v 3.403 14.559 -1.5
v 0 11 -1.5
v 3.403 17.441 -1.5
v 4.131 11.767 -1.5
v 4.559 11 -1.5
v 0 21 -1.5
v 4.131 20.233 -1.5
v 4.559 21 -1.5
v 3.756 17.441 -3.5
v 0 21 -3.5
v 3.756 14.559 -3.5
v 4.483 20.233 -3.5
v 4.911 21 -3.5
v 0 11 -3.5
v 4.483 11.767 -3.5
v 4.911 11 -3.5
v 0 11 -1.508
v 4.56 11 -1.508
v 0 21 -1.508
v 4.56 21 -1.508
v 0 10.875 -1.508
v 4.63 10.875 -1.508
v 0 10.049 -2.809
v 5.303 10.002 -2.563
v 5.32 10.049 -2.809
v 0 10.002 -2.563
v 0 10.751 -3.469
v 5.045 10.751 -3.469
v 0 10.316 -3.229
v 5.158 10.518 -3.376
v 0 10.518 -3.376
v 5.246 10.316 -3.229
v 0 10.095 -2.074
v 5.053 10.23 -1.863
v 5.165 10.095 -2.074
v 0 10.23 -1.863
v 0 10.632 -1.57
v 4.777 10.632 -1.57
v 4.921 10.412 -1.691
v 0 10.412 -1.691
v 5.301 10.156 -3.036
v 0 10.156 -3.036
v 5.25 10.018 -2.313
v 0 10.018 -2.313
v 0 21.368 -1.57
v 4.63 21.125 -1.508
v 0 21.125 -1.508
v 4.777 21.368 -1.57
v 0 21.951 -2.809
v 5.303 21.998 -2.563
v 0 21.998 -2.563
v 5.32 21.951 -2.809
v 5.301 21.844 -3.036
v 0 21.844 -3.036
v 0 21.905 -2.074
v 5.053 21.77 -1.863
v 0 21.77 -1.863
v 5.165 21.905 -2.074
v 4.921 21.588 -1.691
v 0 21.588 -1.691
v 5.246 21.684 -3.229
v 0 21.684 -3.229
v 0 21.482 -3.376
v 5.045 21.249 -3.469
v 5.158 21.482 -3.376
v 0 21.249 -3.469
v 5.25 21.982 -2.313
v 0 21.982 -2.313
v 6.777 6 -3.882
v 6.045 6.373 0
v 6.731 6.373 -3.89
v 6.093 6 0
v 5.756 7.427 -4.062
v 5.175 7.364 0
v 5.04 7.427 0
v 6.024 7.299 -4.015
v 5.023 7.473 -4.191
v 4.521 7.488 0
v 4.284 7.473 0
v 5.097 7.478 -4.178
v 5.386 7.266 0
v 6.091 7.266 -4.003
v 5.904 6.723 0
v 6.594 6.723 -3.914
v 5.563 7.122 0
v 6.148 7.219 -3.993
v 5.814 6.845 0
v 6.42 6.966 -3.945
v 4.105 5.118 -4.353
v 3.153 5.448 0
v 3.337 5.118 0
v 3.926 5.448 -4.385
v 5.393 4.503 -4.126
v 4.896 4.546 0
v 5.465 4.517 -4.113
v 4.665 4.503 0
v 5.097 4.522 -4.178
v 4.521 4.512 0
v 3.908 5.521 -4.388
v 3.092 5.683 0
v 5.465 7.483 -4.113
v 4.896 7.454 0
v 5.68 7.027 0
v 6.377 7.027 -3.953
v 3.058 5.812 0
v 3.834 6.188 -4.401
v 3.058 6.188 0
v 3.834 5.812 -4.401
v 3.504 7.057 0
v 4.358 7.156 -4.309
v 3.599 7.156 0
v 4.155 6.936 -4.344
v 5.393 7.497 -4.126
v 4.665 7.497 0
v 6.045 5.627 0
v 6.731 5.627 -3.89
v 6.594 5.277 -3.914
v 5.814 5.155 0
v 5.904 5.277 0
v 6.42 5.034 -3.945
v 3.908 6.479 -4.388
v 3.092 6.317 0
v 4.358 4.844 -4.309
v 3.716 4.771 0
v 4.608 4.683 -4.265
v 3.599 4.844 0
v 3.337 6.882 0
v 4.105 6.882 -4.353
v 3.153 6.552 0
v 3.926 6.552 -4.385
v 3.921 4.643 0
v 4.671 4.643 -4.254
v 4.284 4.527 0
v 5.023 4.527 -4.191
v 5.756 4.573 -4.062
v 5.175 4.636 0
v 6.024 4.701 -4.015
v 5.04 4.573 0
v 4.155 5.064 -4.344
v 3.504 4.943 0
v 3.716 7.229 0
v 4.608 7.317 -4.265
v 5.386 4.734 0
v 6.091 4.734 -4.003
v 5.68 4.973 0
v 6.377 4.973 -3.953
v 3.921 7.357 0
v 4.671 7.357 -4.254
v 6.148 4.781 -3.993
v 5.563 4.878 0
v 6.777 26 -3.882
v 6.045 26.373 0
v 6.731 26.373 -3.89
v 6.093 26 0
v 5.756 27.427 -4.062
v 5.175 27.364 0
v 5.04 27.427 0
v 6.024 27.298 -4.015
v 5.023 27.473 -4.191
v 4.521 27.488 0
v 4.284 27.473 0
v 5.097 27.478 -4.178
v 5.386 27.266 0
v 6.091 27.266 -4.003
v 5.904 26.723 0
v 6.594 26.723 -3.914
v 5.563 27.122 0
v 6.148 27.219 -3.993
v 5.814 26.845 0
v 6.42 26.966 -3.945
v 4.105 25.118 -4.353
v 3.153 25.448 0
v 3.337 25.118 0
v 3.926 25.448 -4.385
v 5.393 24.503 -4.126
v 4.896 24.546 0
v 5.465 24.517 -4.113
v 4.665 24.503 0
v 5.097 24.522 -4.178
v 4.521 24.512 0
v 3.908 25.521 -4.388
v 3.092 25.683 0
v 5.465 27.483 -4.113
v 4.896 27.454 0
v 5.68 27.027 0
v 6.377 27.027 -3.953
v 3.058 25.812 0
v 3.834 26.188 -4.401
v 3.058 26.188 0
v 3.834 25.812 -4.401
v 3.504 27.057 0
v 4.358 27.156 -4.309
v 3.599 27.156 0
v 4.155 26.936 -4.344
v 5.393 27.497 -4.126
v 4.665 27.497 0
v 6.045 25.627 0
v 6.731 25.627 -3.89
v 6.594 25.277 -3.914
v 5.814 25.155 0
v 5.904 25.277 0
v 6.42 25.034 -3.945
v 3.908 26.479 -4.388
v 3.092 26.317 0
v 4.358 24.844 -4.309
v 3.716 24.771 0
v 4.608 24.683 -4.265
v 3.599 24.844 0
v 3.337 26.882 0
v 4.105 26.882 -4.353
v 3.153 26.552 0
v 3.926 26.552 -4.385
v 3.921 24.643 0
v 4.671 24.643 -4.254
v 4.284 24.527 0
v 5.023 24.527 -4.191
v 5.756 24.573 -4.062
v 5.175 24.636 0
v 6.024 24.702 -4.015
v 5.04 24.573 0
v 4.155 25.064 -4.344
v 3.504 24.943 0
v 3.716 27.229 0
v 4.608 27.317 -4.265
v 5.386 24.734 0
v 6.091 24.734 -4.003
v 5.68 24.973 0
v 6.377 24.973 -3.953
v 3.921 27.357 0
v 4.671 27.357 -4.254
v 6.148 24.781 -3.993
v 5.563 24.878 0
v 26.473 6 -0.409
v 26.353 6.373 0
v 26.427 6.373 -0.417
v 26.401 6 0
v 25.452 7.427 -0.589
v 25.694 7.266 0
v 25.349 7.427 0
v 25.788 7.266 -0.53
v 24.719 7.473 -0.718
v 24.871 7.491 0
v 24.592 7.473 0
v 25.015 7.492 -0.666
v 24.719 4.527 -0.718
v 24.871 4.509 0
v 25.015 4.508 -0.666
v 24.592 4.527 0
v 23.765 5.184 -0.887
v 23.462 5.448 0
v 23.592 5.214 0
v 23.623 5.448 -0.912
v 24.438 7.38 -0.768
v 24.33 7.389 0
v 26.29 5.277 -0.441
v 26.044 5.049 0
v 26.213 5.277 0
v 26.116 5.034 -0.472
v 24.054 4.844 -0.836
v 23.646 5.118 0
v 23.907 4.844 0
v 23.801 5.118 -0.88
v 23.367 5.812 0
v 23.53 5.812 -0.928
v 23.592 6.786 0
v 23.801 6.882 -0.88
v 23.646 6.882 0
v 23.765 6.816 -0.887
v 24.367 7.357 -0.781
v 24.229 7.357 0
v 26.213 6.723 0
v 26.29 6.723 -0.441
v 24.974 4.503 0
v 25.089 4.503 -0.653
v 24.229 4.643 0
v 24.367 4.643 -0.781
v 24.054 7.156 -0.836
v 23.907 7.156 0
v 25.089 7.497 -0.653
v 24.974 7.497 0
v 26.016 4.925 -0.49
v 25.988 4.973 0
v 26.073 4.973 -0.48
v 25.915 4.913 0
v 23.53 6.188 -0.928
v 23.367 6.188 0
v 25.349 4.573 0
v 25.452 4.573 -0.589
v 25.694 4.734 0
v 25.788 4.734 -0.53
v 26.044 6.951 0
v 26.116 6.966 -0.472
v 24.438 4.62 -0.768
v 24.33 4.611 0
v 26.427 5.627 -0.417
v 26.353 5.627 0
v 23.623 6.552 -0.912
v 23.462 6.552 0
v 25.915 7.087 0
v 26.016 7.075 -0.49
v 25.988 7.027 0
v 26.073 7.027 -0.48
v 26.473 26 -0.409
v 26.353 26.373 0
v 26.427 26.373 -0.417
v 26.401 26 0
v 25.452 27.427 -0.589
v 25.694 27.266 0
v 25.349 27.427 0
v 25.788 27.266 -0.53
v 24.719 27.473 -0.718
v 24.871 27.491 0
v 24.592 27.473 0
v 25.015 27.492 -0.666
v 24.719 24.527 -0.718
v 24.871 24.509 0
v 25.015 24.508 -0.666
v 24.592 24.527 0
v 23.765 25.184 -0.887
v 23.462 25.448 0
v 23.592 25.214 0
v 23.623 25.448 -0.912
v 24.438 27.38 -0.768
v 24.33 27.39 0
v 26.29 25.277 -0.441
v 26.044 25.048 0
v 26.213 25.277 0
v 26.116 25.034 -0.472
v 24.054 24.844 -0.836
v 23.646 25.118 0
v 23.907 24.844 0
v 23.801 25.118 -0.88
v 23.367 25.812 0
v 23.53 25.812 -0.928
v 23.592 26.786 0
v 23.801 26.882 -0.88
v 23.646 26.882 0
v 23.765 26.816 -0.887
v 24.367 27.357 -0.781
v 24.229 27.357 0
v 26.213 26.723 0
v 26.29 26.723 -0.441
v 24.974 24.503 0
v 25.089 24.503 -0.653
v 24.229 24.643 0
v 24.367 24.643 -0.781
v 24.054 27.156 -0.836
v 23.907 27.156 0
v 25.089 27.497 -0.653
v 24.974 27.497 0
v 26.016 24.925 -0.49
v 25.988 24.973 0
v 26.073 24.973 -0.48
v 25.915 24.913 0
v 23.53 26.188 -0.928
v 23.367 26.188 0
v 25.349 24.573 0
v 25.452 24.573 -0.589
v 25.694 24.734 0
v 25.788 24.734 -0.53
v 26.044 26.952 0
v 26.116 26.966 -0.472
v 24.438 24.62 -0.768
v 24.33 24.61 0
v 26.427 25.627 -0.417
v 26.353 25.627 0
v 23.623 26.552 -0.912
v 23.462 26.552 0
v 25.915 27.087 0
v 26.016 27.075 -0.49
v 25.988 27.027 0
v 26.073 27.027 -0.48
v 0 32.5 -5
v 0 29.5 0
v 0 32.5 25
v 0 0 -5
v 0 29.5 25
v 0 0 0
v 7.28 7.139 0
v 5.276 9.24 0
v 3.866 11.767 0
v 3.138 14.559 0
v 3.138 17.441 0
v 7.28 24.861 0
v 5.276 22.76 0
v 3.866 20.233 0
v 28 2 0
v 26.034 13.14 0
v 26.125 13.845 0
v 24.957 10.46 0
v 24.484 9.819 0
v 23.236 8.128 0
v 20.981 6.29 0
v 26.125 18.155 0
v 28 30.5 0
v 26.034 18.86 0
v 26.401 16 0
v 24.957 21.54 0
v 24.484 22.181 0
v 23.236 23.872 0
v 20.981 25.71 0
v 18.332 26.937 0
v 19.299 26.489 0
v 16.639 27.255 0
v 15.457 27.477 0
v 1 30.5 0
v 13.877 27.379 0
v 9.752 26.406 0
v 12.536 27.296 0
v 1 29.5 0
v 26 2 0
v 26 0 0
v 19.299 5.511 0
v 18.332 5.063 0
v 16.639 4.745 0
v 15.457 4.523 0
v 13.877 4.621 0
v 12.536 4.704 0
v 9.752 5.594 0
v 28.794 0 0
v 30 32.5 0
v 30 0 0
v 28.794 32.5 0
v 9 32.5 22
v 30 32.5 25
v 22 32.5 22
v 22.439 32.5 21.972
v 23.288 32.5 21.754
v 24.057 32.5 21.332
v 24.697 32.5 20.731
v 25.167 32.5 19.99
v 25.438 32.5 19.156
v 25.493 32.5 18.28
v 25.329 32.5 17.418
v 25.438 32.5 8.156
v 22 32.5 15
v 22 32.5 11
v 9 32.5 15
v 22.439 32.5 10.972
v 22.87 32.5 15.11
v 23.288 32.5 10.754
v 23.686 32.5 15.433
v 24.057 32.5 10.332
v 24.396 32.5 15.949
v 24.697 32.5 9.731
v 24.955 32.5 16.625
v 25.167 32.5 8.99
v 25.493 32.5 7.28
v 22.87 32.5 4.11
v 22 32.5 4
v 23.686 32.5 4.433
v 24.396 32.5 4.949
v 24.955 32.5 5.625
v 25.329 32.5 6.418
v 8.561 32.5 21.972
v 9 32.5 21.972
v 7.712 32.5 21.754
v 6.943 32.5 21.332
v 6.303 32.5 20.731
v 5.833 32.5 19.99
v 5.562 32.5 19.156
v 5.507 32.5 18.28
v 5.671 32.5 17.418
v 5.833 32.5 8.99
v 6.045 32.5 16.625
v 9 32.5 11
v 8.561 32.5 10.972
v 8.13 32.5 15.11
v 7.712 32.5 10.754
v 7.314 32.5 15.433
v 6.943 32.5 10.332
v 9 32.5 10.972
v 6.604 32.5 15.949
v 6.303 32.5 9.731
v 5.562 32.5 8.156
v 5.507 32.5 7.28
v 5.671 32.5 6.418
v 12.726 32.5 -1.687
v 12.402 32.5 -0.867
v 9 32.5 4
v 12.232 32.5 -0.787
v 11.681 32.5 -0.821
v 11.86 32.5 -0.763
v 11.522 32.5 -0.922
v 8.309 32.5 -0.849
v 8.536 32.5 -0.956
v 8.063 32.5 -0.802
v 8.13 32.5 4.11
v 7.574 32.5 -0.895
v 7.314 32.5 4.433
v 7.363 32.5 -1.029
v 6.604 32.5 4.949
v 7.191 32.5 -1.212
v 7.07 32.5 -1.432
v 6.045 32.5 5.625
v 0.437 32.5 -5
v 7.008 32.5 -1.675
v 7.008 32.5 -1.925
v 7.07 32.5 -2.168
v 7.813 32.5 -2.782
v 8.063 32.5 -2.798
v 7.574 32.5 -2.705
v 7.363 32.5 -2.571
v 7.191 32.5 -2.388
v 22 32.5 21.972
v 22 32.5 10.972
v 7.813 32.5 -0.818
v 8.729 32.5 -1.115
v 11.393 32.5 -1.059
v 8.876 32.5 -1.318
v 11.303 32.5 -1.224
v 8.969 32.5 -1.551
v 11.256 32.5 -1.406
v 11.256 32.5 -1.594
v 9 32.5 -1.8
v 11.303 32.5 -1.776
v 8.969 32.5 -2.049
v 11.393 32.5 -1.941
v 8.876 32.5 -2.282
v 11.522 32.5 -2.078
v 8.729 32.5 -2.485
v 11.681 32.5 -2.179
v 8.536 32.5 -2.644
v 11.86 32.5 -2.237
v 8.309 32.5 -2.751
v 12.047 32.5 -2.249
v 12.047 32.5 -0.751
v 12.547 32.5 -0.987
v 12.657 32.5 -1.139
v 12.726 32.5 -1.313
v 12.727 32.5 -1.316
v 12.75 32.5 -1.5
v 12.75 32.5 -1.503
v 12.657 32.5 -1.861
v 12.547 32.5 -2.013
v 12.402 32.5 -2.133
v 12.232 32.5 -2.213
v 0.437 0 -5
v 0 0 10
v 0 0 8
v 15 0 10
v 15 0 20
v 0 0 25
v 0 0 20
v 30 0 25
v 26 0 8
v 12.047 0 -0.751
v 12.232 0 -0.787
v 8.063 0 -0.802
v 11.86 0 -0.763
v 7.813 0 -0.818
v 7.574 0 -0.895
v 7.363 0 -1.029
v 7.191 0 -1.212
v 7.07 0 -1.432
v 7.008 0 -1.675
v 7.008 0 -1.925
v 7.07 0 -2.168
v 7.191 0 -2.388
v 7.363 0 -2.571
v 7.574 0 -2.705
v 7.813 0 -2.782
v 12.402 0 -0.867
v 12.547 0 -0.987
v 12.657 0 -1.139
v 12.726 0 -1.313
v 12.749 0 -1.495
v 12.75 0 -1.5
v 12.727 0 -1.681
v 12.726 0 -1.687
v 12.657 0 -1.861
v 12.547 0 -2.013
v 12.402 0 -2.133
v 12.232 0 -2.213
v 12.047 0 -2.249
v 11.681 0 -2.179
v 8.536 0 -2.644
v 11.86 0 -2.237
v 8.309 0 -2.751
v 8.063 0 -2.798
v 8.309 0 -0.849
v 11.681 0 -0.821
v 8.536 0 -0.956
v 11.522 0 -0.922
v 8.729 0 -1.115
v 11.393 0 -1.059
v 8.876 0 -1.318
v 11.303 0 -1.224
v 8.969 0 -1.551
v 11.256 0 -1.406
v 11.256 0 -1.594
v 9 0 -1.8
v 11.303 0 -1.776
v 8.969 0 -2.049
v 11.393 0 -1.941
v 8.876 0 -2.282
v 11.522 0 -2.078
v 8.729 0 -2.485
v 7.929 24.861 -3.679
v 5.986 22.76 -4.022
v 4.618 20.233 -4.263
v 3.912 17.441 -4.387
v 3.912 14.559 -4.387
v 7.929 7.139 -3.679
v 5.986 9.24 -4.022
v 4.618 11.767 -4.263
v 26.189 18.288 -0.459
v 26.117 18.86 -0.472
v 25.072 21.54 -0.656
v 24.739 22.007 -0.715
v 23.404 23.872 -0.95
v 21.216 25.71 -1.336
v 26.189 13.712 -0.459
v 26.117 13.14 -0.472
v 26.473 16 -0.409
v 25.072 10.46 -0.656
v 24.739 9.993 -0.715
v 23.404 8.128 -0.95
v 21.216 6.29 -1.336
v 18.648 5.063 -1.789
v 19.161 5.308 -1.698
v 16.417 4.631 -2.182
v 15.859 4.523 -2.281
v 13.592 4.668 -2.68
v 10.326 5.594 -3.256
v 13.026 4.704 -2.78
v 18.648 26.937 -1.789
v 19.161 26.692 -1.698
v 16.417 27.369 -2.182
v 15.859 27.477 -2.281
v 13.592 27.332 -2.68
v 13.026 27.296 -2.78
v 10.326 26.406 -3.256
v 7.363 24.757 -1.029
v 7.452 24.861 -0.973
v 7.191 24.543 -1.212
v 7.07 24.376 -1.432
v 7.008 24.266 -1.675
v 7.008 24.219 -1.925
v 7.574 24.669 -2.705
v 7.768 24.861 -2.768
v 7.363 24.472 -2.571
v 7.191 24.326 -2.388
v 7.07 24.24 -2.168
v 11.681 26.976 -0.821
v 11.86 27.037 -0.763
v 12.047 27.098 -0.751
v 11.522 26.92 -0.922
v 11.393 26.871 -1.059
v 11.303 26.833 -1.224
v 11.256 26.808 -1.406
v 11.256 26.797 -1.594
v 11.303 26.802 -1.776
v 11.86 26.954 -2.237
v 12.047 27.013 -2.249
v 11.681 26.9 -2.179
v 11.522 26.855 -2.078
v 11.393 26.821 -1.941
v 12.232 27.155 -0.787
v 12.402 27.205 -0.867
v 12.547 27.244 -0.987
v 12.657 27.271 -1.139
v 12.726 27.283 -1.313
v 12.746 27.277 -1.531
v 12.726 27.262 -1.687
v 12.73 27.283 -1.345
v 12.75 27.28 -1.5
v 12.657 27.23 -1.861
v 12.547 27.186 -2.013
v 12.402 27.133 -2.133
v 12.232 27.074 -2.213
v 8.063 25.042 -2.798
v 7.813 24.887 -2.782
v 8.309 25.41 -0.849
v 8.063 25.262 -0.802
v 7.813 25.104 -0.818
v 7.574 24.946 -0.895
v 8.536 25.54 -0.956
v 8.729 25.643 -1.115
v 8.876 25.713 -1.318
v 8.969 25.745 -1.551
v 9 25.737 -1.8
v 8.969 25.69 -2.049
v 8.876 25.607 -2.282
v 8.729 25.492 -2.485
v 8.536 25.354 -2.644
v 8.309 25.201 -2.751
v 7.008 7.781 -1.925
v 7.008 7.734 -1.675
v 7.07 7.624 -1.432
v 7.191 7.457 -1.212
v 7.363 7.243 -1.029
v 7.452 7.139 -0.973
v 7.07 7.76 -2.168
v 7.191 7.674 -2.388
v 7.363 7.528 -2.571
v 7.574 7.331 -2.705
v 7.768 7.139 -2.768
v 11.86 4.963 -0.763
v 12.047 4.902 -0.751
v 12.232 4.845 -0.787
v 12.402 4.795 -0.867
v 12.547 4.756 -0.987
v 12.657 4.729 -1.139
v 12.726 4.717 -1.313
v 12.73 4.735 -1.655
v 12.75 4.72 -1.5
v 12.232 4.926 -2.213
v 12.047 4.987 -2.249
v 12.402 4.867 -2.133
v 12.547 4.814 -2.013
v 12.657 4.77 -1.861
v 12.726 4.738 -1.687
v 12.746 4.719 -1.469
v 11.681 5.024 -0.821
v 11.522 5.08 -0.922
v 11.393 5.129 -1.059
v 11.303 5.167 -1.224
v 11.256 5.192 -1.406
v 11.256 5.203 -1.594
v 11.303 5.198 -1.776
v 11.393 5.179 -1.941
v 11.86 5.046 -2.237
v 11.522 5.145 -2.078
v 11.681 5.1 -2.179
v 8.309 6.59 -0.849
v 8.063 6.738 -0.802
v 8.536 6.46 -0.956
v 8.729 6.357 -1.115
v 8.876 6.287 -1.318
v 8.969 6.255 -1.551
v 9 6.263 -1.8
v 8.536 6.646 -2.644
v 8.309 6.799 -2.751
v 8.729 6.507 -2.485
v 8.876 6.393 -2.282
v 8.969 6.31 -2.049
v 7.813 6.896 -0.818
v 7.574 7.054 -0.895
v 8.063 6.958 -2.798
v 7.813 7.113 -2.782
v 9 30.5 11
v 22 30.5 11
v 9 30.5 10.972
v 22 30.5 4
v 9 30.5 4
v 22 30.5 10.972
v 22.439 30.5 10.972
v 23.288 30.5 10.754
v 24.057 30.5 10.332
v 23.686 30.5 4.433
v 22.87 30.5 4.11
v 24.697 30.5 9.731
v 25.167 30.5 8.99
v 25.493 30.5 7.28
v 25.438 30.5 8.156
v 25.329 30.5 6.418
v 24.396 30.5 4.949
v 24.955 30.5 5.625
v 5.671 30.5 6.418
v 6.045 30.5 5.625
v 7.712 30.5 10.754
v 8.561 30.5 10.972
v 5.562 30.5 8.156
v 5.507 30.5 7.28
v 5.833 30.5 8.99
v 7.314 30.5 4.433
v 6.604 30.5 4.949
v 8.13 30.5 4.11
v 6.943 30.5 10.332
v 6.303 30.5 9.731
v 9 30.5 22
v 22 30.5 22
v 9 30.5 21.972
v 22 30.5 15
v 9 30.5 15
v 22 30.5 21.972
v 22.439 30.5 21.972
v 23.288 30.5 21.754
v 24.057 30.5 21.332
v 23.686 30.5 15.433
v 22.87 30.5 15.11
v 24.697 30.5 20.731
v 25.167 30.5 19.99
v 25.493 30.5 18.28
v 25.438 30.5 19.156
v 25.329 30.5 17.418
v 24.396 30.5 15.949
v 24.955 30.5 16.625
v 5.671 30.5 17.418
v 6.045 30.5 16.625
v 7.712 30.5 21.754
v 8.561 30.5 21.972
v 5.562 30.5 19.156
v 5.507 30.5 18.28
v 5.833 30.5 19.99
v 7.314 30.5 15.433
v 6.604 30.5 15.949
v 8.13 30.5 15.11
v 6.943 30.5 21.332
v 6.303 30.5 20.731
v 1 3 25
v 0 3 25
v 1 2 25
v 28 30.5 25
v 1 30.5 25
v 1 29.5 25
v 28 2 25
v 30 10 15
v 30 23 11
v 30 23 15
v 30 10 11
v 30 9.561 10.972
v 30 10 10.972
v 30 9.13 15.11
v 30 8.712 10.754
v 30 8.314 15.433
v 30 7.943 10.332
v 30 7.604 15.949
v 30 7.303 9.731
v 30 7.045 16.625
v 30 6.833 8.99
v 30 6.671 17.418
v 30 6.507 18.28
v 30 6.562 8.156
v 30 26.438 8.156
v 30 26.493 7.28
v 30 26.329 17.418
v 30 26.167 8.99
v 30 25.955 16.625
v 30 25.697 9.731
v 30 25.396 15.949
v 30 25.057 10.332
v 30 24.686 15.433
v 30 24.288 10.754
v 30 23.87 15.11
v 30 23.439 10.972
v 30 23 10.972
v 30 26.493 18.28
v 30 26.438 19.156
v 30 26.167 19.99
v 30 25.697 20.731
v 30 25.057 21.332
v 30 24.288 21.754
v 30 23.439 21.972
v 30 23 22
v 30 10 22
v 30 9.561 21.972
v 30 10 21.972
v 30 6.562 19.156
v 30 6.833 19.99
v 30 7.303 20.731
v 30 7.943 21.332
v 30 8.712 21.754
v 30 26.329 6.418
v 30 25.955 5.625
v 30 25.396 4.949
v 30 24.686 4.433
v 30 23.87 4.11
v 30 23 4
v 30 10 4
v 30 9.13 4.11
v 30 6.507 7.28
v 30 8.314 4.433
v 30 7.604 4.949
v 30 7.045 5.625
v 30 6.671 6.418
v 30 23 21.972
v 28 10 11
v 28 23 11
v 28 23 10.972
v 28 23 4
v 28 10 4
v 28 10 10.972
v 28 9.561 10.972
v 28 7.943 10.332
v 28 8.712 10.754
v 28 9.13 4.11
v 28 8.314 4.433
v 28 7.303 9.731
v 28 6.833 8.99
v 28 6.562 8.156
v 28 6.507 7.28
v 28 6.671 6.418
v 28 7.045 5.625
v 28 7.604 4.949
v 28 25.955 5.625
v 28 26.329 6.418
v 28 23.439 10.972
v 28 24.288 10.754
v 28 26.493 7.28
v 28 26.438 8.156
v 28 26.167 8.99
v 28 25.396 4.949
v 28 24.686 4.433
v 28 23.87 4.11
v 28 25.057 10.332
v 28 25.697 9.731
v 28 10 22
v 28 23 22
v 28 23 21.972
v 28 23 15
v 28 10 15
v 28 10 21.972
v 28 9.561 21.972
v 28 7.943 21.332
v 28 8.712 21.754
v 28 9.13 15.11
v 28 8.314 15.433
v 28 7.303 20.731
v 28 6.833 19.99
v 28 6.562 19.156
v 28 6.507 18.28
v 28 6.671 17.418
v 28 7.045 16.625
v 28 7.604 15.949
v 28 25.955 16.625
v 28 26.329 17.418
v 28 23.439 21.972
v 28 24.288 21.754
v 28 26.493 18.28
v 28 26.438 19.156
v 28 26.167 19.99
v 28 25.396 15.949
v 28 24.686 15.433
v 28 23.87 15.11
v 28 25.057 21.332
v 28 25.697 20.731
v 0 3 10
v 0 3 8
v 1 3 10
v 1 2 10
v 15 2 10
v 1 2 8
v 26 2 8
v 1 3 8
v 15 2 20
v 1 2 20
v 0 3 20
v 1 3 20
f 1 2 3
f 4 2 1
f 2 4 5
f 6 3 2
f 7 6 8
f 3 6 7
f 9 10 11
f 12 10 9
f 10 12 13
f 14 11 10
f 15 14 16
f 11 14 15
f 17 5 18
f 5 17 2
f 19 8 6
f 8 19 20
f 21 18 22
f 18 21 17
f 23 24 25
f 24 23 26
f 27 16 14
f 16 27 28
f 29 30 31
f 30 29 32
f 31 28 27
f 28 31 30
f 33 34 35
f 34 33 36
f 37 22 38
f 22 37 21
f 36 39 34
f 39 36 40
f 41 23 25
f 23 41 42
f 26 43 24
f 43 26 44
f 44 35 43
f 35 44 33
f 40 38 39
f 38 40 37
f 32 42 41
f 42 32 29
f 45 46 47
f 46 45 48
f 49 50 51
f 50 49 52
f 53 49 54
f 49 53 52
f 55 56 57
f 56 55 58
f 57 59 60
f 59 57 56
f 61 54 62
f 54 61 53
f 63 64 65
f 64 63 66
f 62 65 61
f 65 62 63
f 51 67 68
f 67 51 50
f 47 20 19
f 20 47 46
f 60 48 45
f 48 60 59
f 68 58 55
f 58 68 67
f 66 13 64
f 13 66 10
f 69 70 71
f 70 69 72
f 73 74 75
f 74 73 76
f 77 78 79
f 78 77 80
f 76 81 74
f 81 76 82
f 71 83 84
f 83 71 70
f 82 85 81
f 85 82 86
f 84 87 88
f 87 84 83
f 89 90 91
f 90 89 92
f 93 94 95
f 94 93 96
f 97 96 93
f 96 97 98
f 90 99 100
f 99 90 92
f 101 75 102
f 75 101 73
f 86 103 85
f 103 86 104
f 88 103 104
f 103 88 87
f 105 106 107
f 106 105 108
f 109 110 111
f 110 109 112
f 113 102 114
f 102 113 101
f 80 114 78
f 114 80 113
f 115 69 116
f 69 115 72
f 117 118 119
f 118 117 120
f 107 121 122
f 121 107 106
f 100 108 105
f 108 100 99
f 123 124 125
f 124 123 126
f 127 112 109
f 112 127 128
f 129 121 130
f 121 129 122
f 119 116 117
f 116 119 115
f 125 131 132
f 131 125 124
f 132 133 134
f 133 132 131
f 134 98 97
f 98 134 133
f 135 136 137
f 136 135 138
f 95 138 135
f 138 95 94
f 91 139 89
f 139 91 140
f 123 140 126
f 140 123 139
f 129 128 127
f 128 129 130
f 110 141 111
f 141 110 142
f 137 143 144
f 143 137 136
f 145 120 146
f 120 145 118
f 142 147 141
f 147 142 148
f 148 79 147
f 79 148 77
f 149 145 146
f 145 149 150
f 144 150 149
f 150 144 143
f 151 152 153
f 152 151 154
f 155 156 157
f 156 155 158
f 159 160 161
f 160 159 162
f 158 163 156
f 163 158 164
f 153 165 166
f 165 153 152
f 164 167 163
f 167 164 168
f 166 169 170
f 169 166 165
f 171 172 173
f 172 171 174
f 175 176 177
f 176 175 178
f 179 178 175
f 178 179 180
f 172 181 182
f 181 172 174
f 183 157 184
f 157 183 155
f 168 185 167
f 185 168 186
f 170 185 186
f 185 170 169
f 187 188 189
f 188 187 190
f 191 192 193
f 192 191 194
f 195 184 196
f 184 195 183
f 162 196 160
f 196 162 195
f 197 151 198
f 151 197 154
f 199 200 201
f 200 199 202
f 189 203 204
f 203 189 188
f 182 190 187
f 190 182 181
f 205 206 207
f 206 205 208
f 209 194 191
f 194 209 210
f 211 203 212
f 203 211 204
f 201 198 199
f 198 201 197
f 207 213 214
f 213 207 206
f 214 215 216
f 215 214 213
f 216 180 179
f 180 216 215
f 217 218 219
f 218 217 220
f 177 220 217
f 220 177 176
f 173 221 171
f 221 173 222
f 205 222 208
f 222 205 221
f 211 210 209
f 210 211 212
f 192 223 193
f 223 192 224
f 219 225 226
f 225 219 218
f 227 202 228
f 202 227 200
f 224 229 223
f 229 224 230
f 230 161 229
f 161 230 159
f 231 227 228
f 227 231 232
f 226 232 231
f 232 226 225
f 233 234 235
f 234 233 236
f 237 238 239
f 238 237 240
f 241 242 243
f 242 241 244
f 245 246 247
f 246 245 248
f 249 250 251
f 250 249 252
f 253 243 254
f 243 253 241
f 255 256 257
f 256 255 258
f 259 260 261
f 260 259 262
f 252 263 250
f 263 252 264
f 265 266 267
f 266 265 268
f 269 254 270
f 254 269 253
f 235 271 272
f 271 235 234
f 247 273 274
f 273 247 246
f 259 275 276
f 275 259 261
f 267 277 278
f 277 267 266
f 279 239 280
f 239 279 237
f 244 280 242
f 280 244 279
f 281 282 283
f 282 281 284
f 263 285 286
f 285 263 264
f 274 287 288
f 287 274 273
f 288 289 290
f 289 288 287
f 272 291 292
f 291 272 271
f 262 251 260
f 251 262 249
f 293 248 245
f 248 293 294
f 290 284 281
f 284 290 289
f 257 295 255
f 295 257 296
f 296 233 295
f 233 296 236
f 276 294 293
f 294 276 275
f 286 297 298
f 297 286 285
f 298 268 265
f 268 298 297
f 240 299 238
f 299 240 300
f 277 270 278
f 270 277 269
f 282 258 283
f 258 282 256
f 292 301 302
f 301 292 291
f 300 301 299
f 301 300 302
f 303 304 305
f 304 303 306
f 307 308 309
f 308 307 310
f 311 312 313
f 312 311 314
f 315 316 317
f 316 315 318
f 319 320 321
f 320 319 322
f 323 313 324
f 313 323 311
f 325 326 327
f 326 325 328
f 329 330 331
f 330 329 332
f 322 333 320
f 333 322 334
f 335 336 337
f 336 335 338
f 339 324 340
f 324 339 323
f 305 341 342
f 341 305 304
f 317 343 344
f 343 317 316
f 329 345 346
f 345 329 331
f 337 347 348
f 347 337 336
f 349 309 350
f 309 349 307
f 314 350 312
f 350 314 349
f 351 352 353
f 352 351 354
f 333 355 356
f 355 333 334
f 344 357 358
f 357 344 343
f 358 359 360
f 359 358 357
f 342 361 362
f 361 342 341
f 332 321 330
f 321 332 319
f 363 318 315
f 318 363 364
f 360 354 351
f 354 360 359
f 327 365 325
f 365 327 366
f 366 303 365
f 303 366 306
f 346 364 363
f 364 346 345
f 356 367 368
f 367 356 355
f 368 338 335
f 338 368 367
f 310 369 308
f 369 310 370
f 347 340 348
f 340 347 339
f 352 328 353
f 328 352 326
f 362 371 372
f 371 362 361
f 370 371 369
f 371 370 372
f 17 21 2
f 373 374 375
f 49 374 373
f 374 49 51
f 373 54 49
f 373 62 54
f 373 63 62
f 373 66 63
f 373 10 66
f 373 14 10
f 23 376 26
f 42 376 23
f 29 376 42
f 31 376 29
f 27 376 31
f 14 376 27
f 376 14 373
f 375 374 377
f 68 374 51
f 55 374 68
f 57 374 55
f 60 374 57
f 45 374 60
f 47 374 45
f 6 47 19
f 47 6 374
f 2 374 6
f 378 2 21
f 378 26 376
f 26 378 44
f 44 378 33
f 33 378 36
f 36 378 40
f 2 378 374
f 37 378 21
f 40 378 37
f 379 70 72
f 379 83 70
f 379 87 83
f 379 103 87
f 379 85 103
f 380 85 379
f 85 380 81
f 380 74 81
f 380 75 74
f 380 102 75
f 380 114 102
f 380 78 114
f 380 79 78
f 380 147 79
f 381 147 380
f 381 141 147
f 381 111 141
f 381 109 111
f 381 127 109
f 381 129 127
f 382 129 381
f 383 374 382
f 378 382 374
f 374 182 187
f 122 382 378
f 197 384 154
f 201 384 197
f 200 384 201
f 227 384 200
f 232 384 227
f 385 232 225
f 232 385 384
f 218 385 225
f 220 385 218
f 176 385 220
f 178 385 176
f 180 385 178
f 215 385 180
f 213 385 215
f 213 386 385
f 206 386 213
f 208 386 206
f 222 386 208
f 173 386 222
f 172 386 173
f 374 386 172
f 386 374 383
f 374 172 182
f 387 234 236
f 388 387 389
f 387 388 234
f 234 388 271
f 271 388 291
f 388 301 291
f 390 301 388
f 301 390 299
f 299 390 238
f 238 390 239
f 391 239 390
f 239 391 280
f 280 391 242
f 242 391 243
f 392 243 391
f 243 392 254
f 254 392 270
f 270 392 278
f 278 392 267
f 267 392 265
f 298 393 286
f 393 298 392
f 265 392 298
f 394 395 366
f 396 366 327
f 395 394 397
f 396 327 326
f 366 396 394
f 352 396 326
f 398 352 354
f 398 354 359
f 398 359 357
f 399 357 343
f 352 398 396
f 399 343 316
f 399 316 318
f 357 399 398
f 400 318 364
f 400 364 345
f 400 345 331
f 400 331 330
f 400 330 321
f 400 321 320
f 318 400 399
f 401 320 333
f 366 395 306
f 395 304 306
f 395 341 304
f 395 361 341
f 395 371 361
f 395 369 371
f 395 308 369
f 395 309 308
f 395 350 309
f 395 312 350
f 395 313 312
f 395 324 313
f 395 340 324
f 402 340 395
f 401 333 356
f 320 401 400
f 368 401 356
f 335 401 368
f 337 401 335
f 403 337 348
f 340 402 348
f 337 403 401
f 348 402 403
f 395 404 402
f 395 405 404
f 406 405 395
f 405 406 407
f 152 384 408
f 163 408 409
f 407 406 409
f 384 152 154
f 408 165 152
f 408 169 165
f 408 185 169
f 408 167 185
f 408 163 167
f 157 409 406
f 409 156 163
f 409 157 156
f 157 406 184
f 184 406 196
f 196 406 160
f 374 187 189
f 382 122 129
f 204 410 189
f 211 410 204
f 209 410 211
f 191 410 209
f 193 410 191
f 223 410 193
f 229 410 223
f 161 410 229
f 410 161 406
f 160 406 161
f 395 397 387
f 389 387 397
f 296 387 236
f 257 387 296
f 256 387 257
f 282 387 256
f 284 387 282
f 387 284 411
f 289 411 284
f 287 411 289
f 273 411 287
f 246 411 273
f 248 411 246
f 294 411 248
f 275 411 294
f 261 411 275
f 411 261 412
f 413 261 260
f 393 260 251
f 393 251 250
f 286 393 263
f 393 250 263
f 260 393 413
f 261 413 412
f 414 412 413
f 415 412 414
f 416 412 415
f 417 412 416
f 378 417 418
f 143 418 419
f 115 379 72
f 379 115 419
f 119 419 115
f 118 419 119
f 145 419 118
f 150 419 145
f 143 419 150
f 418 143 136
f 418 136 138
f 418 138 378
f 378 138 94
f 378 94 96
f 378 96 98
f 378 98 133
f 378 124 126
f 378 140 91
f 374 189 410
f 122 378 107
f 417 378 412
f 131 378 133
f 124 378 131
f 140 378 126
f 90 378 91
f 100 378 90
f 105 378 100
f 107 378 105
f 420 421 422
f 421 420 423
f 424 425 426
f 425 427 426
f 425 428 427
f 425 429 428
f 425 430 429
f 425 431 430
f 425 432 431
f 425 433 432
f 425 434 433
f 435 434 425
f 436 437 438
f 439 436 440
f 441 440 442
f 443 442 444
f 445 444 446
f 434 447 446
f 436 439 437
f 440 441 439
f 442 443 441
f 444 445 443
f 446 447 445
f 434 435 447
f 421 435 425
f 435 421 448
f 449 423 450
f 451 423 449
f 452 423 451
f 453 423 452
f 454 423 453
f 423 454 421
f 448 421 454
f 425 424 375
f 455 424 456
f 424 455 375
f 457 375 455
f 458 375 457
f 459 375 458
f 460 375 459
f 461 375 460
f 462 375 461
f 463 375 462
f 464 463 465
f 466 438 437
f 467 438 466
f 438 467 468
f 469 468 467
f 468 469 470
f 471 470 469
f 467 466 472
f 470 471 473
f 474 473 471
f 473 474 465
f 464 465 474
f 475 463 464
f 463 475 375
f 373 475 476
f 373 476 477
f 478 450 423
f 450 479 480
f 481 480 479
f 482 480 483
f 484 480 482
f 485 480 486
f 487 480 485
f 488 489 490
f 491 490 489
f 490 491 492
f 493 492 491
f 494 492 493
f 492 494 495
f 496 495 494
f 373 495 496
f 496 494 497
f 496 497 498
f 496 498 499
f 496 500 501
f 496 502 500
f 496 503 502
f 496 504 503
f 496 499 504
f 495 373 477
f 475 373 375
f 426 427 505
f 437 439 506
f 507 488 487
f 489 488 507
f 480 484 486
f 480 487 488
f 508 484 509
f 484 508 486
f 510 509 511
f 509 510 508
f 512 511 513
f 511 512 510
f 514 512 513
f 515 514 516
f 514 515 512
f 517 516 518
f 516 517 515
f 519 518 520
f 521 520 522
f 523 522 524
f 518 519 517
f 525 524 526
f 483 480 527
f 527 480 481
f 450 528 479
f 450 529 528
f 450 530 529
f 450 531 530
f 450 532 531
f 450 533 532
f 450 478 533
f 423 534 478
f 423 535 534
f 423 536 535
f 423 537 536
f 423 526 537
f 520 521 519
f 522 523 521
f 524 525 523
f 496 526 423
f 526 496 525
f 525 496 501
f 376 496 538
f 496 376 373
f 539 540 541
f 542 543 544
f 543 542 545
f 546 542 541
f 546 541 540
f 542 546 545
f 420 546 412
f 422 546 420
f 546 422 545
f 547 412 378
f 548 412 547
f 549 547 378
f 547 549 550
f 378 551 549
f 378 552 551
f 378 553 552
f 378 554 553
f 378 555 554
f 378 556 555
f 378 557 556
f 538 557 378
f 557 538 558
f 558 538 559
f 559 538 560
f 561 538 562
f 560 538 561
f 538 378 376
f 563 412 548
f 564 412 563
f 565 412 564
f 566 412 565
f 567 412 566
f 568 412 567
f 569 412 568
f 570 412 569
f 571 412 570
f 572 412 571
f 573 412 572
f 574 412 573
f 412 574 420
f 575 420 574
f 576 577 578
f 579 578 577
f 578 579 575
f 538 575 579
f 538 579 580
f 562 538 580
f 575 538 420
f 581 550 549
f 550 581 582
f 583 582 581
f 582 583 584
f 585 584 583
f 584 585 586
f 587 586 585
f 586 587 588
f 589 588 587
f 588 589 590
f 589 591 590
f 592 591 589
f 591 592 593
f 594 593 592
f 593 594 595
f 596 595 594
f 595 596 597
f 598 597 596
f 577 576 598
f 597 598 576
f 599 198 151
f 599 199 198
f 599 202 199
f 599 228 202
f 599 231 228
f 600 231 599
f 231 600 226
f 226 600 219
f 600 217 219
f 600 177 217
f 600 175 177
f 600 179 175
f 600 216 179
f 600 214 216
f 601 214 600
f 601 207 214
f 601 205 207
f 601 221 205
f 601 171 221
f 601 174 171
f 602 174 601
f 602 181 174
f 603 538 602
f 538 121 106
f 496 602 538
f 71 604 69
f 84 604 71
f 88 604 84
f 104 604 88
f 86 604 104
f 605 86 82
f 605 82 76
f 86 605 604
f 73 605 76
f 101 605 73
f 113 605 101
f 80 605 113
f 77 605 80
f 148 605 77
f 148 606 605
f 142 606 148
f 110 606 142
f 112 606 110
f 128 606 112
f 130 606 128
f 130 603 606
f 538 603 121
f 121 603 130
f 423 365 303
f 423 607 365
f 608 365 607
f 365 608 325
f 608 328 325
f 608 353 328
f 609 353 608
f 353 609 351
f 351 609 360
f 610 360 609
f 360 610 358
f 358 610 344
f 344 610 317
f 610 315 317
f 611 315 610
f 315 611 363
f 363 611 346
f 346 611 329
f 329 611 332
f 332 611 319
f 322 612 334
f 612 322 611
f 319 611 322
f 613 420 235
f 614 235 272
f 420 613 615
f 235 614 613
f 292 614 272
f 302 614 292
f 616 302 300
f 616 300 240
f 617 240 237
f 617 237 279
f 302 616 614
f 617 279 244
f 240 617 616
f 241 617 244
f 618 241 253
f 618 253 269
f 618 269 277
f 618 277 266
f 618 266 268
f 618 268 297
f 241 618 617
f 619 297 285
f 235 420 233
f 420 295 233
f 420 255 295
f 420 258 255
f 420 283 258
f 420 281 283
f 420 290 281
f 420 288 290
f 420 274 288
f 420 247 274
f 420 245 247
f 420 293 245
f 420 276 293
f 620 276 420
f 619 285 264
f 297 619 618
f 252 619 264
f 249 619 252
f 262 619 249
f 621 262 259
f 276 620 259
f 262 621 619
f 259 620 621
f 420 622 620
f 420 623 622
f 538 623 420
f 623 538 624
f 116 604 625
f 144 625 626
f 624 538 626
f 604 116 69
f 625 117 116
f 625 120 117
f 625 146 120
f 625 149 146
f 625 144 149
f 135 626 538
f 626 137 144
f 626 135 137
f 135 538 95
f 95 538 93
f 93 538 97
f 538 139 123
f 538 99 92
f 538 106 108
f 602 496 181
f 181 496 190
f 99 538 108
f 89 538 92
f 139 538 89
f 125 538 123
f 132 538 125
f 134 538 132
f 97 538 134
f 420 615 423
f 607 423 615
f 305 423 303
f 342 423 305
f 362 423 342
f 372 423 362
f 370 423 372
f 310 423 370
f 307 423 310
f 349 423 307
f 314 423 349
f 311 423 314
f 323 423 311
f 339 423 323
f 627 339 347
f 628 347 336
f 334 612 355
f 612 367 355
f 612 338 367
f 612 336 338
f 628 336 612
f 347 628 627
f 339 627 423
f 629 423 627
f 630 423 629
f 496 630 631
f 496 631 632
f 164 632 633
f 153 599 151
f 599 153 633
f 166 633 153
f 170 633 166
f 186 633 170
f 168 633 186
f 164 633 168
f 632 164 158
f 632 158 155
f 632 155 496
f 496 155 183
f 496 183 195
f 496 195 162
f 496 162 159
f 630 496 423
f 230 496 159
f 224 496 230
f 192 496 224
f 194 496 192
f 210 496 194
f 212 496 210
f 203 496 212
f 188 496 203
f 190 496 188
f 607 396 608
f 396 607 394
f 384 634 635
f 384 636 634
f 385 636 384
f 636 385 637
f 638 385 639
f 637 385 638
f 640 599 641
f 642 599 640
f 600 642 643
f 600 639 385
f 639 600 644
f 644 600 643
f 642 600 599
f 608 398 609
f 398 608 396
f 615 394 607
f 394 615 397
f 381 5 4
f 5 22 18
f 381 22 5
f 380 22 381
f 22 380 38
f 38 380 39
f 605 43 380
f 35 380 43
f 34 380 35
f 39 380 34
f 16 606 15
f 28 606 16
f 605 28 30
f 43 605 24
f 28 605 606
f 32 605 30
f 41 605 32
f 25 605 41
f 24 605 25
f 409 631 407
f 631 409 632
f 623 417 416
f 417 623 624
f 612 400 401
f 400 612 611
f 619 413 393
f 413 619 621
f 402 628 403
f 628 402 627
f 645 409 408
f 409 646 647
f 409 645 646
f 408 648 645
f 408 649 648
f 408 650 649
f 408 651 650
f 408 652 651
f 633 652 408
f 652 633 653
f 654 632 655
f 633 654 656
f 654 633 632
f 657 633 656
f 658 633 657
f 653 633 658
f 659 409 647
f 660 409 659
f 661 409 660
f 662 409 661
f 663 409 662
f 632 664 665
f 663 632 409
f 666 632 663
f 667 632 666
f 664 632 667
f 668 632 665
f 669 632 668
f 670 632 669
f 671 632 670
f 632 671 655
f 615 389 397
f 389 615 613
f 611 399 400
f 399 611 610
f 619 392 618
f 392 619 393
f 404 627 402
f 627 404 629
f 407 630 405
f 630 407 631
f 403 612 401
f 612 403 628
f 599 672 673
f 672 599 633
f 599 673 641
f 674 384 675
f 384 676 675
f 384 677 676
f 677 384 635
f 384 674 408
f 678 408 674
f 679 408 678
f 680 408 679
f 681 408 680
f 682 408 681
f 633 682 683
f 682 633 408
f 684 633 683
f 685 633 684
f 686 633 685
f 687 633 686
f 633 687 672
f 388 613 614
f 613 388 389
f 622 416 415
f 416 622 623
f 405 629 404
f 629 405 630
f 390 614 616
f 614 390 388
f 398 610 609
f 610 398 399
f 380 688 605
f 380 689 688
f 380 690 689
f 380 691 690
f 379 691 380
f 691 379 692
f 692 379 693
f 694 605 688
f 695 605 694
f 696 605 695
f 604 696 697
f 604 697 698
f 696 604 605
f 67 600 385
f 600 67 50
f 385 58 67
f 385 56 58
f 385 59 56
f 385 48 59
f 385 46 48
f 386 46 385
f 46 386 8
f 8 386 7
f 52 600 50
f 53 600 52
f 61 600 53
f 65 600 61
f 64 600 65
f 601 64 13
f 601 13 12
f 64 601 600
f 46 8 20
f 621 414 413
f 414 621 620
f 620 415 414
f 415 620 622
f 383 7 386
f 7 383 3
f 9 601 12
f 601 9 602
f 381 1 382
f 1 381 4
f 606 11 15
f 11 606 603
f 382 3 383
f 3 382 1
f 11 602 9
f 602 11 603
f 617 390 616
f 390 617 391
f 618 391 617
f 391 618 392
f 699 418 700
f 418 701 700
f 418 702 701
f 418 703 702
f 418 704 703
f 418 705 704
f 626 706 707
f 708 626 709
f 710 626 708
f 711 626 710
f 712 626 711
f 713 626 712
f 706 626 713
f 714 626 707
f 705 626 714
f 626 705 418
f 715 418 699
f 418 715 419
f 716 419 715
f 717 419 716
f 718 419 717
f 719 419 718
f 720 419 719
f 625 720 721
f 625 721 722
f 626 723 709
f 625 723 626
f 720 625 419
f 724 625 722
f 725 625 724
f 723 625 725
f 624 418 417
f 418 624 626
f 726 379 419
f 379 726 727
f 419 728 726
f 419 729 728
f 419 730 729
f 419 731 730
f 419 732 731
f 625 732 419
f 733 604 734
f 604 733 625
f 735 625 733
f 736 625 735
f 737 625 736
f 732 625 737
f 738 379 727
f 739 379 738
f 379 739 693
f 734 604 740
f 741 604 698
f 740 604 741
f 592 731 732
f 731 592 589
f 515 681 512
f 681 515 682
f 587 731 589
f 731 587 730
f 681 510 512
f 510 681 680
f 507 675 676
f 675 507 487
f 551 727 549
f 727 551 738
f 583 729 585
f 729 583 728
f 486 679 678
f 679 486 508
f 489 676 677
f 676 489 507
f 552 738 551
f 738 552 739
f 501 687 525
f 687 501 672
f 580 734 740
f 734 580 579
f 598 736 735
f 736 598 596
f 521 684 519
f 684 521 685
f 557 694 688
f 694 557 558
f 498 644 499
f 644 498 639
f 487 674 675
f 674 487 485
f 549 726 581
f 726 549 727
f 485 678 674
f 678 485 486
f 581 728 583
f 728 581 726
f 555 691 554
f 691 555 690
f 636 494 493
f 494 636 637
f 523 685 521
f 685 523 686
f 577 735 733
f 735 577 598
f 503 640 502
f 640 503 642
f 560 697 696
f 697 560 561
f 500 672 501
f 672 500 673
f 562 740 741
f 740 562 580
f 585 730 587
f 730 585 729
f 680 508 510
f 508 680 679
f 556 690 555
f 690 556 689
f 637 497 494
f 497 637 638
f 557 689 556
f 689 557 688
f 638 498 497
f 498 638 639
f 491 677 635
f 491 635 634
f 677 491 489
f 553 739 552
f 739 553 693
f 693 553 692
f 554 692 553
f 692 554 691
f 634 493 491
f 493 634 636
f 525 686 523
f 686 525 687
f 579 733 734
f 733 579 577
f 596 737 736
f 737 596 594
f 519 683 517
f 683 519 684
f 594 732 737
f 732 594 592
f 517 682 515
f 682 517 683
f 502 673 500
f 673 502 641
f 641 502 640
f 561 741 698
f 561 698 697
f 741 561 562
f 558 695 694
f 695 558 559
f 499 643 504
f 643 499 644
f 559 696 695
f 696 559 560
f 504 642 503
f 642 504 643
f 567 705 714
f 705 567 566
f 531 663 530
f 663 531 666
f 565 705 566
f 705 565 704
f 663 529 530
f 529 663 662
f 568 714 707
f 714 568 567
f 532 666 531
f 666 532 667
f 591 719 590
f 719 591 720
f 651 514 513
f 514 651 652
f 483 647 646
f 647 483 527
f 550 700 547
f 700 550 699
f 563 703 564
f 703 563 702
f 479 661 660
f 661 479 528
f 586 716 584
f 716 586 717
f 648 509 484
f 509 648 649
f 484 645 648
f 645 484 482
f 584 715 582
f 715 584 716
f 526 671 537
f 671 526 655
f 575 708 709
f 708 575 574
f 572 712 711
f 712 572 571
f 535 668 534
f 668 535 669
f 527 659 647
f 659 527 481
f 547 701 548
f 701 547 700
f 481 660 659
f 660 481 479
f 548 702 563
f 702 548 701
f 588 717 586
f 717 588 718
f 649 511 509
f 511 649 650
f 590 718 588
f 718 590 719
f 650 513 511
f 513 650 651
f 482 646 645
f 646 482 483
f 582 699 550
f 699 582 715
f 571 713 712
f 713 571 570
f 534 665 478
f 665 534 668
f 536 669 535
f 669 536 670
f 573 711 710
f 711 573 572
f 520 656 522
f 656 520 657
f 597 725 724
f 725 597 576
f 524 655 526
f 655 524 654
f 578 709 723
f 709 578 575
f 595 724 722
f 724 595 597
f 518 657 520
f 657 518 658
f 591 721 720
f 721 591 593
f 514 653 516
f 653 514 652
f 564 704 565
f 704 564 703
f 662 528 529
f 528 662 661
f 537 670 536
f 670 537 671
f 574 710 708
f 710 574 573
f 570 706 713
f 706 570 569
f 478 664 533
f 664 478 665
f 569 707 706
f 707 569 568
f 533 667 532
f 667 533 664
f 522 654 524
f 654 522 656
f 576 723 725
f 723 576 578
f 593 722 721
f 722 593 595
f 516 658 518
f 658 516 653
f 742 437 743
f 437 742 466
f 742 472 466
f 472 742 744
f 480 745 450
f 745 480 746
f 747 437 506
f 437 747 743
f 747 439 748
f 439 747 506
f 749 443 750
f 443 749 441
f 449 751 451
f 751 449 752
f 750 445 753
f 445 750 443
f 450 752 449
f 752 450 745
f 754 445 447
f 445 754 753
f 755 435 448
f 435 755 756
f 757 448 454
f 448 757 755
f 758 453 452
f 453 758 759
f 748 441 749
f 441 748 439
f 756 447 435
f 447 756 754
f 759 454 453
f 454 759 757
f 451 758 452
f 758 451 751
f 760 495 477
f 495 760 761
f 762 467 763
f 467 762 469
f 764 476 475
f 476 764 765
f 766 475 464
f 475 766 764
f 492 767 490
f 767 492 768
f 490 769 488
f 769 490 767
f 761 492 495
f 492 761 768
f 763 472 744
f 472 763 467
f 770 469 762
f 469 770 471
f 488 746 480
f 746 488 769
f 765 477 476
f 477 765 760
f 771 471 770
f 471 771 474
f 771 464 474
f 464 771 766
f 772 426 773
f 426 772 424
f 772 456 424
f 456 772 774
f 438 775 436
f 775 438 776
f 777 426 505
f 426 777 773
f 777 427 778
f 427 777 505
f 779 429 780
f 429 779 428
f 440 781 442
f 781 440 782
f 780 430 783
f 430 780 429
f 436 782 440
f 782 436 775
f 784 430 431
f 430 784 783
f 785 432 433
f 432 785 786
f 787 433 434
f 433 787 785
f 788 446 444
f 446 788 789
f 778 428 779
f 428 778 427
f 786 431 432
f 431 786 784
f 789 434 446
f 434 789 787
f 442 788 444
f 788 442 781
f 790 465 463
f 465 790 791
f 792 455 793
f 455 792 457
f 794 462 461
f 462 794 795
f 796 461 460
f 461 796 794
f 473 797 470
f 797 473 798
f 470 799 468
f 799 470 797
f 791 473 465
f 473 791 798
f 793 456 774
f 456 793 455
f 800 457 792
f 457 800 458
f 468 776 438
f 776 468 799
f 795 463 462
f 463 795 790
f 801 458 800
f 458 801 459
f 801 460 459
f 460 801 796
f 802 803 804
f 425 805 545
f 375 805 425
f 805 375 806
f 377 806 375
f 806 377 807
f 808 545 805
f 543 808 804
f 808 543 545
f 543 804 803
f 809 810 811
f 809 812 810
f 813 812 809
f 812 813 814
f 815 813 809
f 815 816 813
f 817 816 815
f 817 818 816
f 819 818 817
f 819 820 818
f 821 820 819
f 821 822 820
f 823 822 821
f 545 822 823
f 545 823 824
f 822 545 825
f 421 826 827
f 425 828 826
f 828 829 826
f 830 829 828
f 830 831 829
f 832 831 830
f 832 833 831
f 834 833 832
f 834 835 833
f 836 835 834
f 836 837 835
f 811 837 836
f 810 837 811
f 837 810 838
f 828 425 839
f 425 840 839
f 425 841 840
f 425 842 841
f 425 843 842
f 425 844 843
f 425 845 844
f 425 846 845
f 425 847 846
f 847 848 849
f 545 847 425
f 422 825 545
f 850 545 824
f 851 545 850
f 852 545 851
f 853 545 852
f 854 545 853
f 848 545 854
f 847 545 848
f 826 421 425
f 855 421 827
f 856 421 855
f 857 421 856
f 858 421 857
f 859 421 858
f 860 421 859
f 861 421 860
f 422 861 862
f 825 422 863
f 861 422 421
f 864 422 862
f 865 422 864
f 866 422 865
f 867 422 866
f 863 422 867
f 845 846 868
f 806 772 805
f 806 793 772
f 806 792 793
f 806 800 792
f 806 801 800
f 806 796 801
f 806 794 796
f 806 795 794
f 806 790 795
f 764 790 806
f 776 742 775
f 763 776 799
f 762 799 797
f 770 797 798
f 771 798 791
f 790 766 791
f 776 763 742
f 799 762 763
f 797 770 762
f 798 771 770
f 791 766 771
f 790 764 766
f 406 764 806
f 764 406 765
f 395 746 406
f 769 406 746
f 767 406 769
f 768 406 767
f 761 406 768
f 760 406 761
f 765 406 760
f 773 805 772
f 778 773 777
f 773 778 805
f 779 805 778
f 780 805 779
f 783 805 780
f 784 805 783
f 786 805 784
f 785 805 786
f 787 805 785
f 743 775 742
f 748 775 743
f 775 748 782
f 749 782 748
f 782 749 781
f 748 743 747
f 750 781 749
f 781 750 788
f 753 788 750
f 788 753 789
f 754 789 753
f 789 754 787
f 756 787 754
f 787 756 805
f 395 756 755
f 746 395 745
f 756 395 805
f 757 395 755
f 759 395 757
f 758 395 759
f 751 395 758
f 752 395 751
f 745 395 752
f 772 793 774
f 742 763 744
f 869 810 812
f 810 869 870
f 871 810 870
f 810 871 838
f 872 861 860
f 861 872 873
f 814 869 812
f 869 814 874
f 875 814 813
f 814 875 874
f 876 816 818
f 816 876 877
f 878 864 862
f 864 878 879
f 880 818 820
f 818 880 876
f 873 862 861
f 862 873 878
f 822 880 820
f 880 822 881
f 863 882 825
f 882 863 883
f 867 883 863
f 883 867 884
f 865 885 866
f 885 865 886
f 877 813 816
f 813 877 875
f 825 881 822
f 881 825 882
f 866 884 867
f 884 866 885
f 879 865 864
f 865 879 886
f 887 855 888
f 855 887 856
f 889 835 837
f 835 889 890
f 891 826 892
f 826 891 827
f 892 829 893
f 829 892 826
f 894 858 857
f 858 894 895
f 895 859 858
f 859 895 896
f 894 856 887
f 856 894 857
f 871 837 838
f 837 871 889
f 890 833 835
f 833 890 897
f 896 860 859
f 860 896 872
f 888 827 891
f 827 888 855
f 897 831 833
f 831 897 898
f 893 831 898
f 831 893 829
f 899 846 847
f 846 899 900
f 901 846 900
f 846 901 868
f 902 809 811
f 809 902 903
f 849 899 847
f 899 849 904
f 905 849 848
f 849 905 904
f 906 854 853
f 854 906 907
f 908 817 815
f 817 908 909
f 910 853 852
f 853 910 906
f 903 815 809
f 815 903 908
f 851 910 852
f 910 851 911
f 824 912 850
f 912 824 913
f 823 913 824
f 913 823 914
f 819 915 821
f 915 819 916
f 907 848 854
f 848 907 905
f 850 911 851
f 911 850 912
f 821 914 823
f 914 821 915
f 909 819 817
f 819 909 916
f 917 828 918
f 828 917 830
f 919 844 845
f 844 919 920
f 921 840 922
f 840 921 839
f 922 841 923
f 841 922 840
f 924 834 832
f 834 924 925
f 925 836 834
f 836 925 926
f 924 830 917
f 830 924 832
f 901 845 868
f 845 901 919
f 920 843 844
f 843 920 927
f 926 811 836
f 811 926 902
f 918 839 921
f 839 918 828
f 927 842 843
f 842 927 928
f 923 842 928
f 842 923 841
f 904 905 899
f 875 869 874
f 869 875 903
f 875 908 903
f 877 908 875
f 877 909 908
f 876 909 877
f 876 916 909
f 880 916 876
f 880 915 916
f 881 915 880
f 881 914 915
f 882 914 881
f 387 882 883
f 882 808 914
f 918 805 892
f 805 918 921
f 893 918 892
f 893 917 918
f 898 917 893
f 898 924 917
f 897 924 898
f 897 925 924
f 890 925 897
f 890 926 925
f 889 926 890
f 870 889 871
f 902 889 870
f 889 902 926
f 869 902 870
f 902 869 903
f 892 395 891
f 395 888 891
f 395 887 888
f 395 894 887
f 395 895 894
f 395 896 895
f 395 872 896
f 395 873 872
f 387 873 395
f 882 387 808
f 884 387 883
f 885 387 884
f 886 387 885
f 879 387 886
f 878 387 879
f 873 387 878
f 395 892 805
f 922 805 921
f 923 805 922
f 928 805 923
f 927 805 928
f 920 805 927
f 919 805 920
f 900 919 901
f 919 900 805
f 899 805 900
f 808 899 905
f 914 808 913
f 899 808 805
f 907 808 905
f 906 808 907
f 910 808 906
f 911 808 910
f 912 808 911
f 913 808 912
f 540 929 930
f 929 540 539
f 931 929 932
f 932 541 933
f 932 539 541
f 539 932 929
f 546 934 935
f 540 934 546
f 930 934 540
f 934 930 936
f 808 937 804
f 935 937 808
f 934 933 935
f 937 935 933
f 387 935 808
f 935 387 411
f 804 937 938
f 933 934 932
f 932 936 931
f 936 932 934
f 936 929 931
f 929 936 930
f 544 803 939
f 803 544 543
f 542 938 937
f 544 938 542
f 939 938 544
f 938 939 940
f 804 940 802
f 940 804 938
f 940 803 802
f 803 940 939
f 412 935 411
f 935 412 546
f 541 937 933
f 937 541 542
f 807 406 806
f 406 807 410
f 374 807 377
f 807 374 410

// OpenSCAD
/*
 * Based on "Y-Axis Bracket" by "daveth26":
 * http://www.thingiverse.com/thing:1104535
 *
 * Recreated and modified by:
 * Thomas Buck <xythobuz@xythobuz.de> in March 2016
 *
 * Licensed under the Creative Commons - Attribution license.
 *
 * This part has been modified to use a 25mm fan instead of 
 * a 30mm fan. This can be set in the parameters, but beware
 * of any problems, I have not tested any other sizes.
 *
 * The Fabrikator Mini V1.5 include a new bracket that prevents
 * the old design from sliding fully onto the stepper motor.
 * A parameter has been added (fab_mini_v15) that allows
 * reverting to the old behvior.
 *
 * For V1.5, a height of 25mm is suggested, as this provides
 * enough stability with the big cut-out. To revert to something
 * like the original model, set the height to 15mm (and
 * fab_mini_v15 to "false").
 */

// -----------------------------------------------------------

height = 25; // [14:26]

// cut-out for new part in Fabrikator Mini V1.5
fab_mini_v15 = "true"; // [true, false]

// default for 25mm fan: 23
fan_hole_diameter = 23; // [26]

// default for 25mm fan: 20
fan_screw_distance = 20; // [22]

// default for 25mm fan: 3
fan_screw_diameter = 3; // [1:5]

fan_hole_angled = "true"; // [true, false]

// -----------------------------------------------------------

/* [Hidden] */

fan_angle = 10;

$fn = 25;

fan_screw_pos = fan_screw_distance / 2;
fan_screw_neg = -fan_screw_pos;

// -----------------------------------------------------------

module ellipse(w, l, d) {
    cube([d, l - w, w]);
    
    translate([0, 0, w / 2])
        rotate([0, 90, 0])
        cylinder(d = w, h = d);
    
    translate([0, l - w, w / 2])
        rotate([0, 90, 0])
        cylinder(d = w, h = d);
}

// -----------------------------------------------------------

// bottom left arm
if (fab_mini_v15 == "true") {
    translate([0, 0, 8])
        cube([30, 2, 2]);
} else {
    translate([0, 0, 8])
        cube([30, 2, height - 8]);
}

// bottom left nub
if (fab_mini_v15 == "true") {
    translate([0, 0, 8])
        cube([1, 3, 2]);
} else {
    translate([0, 0, 8])
        cube([1, 3, height - 8]);
}

if (height > 20) {
    // top left arm
    translate([0, 0, 20])
        cube([30, 2, height - 20]);
    
    // top left nub
    translate([0, 0, 20])
        cube([1, 3, height - 20]);
}

// left back support
translate([26, 0, 0])
    cube([4, 2, height]);

// mid left support
translate([15, 0, 10])
    cube([11, 2, height - 10]);

// right arm
difference() {
    translate([0, 30.5, 0])
        cube([30, 2, height]);
    
    translate([22, 28, 4])
        rotate([0, 0, 90])
        ellipse(7, 20, 8);
    
    if (height > 23) {
        translate([22, 28, 15])
            rotate([0, 0, 90])
            ellipse(7, 20, 8);
    }
}
    
// right nub
translate([0, 29.5, 0])
    cube([1, 3, height]);

// back wall
difference() {
    translate([28, 0, 0])
        cube([2, 32, height]);
    
    translate([25, 10, 4])
        ellipse(7, 20, 8);
    
    if (height > 23) {
        translate([25, 10, 15])
            ellipse(7, 20, 8);
    }
}

difference() {
    // base
    translate([0, 0, -5])
        cube([30, 32.5, 5]);
    
    // cut off angled bottom part
    rotate([0, -fan_angle, 0])
        translate([-2, -1, -11])
        cube([34, 34, 6]);
    
    // main fan hole
    if (fan_hole_angled == "true") {
        rotate([0, -fan_angle, 0])
            translate([14.5, 16, -7])
            cylinder(d = fan_hole_diameter, h = 10);
    } else {
        translate([14.5, 16, -7])
        cylinder(d = fan_hole_diameter, h = 10);
    }
    
    // fan screw holes
    for (i = [1 : 2]) {
        for (j = [1 : 2]) {
            rotate([0, -fan_angle, 0])
                translate([14.5, 16, -7])
                translate([(((i % 2) == 0) ? fan_screw_pos : fan_screw_neg),
                    (((j % 2) == 0) ? fan_screw_pos : fan_screw_neg), 0])
                cylinder(d = fan_screw_diameter, h = 10);
        }
    }
    
    // big air hole
    translate([8, 33, -1.8])
        rotate([90, 0, 0])
        cylinder(d = 2, h = 34);
    
    // small air hole
    translate([12, 33, -1.5])
        rotate([90, 0, 0])
        cylinder(d = 1.5, h = 34);
    
    // elliptical air hole
    translate([-1, 11, -3.5])
        ellipse(2, 12, 8);
}
